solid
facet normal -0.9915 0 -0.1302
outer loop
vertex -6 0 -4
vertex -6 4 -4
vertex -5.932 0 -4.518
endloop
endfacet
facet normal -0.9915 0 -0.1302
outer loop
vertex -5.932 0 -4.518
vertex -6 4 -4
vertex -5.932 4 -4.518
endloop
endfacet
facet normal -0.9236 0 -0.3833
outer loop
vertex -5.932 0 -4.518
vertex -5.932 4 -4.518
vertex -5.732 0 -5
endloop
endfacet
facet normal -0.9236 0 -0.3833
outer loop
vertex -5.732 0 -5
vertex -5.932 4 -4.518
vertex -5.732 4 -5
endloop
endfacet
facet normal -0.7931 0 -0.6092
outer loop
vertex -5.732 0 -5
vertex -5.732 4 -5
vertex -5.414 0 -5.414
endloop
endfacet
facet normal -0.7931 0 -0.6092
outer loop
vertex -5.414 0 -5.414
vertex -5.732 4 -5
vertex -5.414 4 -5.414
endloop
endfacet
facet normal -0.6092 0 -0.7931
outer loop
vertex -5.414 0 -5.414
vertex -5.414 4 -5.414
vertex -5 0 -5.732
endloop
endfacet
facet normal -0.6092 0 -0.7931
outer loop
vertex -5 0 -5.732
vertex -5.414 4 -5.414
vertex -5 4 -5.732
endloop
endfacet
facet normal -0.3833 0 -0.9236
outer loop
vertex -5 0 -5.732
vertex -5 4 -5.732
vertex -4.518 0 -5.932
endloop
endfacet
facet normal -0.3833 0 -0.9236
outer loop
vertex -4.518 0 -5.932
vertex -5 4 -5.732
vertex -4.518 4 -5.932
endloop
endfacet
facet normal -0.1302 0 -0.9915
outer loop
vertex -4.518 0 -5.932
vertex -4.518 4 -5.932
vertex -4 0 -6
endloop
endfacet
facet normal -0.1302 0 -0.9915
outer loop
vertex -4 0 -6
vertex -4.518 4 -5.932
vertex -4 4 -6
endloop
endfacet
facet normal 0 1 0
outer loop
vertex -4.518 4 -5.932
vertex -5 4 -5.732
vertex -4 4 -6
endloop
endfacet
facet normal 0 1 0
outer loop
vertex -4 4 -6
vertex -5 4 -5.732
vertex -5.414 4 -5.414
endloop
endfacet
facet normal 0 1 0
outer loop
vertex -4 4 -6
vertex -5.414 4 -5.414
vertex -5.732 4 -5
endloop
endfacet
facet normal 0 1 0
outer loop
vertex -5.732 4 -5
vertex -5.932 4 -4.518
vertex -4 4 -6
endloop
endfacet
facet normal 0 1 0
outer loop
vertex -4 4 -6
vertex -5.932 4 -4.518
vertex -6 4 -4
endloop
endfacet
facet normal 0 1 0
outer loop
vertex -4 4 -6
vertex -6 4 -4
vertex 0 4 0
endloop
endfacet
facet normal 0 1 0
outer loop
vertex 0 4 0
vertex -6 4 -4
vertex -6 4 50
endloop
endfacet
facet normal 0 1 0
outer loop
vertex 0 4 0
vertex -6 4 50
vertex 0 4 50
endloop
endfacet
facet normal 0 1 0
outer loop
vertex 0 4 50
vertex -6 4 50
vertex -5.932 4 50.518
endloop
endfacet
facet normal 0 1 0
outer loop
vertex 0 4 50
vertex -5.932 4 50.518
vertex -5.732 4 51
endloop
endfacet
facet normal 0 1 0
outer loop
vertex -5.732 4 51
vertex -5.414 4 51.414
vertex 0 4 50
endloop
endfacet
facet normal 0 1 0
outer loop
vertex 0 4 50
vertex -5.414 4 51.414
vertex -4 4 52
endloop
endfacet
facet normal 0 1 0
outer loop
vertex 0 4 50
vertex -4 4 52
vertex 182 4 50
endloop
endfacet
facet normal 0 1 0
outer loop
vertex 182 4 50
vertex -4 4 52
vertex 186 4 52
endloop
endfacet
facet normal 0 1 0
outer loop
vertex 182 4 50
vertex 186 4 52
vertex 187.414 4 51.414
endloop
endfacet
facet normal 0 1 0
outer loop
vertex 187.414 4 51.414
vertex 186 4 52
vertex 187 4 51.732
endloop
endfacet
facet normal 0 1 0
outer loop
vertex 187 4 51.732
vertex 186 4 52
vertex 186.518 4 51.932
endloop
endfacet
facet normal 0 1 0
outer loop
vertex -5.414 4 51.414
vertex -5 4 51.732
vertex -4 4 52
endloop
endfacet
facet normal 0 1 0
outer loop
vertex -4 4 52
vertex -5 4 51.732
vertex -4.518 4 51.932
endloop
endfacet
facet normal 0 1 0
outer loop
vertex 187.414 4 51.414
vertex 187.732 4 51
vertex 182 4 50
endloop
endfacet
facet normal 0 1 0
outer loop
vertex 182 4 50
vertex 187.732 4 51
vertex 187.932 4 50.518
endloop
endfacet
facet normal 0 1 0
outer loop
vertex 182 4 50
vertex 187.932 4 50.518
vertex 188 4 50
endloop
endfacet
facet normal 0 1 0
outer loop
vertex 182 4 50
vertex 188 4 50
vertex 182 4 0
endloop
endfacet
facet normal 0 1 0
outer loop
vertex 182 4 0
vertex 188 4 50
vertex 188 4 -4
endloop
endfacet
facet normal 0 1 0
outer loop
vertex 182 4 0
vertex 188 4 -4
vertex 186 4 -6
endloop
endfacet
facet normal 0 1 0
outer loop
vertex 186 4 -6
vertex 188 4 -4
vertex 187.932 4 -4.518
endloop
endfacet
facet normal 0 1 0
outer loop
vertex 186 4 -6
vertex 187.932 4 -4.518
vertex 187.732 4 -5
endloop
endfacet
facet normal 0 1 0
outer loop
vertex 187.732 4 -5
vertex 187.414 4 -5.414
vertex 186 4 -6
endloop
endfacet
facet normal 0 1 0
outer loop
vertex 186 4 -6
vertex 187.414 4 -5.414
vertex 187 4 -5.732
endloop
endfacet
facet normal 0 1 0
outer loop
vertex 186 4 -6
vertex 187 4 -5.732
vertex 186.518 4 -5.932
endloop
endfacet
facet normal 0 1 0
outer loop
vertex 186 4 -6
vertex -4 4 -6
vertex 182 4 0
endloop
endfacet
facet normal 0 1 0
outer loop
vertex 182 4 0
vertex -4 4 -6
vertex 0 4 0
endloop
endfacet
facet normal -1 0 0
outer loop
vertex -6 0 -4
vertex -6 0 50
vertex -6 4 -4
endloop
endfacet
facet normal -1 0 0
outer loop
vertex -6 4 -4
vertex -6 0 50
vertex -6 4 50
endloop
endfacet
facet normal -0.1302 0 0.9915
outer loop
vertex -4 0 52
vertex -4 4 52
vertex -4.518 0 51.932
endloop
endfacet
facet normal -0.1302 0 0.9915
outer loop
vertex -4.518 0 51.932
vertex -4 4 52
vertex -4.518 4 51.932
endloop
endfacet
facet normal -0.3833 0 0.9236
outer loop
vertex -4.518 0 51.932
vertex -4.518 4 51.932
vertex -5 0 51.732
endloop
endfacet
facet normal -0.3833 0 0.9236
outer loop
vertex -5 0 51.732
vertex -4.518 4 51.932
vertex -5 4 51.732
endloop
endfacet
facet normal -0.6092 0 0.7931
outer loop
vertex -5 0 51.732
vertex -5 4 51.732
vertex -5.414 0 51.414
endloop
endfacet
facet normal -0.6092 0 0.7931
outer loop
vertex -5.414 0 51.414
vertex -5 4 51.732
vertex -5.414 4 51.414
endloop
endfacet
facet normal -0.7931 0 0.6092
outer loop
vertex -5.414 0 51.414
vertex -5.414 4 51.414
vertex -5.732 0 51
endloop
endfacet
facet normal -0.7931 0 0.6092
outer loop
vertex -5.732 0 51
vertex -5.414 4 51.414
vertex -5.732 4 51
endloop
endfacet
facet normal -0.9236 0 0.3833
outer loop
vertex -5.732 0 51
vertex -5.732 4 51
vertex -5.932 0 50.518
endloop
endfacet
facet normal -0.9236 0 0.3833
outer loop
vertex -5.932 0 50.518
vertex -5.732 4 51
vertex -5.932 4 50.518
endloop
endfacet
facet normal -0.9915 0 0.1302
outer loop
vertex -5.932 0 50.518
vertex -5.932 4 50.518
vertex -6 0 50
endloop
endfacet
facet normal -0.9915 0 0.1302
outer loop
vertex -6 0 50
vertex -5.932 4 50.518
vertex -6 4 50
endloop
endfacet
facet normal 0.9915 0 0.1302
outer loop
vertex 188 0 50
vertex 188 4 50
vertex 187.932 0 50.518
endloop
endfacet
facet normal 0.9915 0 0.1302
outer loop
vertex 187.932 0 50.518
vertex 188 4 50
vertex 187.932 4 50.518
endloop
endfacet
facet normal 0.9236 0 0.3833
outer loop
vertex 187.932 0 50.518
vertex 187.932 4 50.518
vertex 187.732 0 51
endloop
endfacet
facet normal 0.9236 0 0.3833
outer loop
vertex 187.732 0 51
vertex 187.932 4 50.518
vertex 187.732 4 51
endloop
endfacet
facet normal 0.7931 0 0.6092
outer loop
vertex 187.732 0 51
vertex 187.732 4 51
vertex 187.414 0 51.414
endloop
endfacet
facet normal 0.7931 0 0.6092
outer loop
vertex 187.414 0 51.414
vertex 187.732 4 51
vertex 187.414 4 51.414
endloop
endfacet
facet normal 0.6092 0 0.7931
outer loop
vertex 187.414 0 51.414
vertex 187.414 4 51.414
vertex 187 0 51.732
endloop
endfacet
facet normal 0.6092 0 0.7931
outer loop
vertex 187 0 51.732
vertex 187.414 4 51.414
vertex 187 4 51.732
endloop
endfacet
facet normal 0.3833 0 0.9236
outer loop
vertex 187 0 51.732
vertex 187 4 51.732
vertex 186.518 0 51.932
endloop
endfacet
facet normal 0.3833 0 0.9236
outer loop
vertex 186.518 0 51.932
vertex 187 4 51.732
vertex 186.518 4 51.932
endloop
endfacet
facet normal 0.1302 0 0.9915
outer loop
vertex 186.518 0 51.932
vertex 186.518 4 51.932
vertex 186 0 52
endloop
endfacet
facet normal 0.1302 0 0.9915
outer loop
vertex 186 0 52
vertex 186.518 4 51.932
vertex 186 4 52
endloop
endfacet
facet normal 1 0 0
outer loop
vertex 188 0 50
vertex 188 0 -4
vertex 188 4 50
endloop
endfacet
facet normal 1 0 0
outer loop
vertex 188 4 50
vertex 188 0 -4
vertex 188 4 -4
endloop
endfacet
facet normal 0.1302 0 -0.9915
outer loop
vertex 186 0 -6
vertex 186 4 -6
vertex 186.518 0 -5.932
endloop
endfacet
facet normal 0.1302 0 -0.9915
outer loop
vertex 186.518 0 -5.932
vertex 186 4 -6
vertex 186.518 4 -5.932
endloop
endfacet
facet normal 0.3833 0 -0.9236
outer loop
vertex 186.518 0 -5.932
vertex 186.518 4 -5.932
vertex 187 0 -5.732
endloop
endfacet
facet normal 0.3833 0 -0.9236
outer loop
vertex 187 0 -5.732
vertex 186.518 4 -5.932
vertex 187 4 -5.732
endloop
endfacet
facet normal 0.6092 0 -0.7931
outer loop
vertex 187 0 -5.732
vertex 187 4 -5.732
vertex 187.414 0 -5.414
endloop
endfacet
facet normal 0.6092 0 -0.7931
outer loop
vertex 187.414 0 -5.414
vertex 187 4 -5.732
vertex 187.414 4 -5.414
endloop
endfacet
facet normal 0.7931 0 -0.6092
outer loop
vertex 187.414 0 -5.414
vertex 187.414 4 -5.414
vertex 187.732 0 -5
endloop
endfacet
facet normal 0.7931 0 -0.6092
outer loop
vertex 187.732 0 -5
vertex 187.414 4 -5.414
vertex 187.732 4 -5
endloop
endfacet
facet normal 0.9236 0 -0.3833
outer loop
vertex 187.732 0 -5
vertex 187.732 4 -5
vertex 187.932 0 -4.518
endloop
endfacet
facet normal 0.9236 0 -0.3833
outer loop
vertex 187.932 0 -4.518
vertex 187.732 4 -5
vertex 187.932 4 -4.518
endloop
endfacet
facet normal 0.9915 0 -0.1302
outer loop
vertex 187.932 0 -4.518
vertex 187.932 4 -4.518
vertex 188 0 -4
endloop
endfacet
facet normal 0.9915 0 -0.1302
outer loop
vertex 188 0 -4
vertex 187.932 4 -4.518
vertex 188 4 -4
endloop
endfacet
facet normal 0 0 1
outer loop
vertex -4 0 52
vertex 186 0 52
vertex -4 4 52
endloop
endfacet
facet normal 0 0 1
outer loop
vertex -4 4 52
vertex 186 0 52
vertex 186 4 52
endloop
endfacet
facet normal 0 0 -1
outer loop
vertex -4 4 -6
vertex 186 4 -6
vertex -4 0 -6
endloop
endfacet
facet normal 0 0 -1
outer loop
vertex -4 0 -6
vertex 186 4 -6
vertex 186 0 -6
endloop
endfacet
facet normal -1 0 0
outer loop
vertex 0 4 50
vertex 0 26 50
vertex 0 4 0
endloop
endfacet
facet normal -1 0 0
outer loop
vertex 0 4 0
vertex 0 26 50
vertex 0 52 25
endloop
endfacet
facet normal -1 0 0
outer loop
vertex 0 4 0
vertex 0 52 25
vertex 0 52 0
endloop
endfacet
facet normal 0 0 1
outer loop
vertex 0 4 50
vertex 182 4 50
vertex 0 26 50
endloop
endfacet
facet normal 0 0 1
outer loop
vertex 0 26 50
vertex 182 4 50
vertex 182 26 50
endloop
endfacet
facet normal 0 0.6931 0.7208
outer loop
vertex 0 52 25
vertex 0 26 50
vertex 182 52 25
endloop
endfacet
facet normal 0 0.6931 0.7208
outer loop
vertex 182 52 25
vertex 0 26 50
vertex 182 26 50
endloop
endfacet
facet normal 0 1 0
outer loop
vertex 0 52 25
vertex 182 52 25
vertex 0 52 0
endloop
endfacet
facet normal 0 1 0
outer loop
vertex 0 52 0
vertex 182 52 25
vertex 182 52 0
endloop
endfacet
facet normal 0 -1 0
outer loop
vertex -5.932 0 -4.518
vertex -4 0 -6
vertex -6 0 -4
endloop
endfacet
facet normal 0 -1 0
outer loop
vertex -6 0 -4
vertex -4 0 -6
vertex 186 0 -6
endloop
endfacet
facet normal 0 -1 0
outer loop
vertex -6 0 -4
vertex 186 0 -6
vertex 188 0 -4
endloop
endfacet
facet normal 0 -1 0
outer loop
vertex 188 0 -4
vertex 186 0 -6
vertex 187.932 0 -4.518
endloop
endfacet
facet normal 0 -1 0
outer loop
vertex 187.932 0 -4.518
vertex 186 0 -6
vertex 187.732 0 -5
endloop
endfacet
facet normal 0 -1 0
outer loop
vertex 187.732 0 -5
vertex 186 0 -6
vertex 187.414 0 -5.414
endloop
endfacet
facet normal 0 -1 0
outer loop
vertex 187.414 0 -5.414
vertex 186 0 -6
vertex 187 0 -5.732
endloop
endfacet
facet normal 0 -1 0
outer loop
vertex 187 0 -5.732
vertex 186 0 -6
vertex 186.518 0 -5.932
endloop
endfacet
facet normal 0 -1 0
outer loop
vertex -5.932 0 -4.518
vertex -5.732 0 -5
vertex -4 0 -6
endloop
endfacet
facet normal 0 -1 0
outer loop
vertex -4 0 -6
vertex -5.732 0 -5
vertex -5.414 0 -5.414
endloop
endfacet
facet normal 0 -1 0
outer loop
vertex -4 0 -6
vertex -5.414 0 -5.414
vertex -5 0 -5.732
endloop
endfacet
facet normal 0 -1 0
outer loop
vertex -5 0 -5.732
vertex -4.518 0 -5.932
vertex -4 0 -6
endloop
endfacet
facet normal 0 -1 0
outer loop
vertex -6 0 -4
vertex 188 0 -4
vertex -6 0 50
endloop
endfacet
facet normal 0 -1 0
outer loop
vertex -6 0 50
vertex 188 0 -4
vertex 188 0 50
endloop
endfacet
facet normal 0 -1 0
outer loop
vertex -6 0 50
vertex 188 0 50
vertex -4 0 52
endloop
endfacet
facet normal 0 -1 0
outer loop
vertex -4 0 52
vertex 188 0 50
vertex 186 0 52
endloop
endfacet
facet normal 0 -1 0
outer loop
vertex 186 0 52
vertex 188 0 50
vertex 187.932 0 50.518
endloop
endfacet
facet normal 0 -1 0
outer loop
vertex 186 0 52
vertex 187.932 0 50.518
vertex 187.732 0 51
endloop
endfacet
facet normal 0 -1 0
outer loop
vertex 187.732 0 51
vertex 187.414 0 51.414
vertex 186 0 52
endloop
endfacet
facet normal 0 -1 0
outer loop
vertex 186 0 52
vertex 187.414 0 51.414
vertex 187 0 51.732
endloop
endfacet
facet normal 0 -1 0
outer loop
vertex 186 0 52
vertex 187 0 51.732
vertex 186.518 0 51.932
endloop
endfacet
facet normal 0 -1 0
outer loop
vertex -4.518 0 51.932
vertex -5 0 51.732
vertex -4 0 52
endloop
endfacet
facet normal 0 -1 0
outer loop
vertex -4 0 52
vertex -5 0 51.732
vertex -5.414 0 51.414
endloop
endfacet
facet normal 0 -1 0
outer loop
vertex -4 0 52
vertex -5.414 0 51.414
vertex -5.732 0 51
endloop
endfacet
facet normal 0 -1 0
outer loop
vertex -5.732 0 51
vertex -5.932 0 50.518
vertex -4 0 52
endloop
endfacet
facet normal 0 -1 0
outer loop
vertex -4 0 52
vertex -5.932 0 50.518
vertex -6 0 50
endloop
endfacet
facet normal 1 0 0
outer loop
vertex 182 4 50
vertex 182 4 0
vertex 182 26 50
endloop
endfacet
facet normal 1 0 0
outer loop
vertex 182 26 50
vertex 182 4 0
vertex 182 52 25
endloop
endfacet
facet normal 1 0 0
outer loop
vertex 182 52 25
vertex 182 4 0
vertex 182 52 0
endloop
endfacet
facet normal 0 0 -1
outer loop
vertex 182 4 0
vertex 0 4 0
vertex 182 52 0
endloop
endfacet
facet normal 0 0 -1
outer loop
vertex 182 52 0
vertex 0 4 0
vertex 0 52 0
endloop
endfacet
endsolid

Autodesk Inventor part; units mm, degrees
ref_plane "YZ Plane" through (0, 0, 0) normal (1, 0, 0) x (0, 1, 0)
ref_plane "XZ Plane" through (0, 0, 0) normal (0, 1, 0) x (-1, 0, 0)
ref_plane "XY Plane" through (0, 0, 0) normal (0, 0, 1) x (1, 0, 0)
sketch "Sketch1" plane through (0, 0, 0) normal (0, 0, 1) x (1, 0, 0)
  line L0 (0, 0) -> (182, 0)
  line L1 (182, 0) -> (182, 52)
  line L2 (182, 52) -> (0, 52)
  line L3 (0, 52) -> (0, 0)
  dimension "d0" = 182
  dimension "d1" = 52
extrude "Extrusion1" add sketch "Sketch1" along normal blind 50
sketch "Sketch2" plane through (182, 0, 0) normal (1, 0, 0) x (0, 0, -1)
  line L0 (0, 52) -> (-50, 52) projected
  line L1 (-25, 52) -> (-50, 26)
  line L2 (-50, 0) -> (-50, 52) projected
  line L3 (-25, 52) -> (-50, 52)
  line L4 (-50, 52) -> (-50, 26)
  point P0 (0, 0)
extrude "Extrusion2" cut sketch "Sketch2" against normal through all
sketch "Sketch3" plane through (0, 0, 0) normal (0, -1, 0) x (1, 0, 0)
  line L0 (0, 50) -> (182, 50) projected
  line L1 (182, 0) -> (0, 0)
  line L2 (0, 0) -> (0, 50)
  line L3 (0, 50) -> (182, 50)
  line L4 (182, 50) -> (182, 0)
  line L5 (-6, -6) -> (188, -6)
  line L6 (188, -6) -> (188, 52)
  line L7 (-6, 52) -> (-6, -6)
  line L8 (182, 50) -> (0, 50)
  line L9 (188, 52) -> (-6, 52)
  dimension "d6" = 6
extrude "Extrusion3" add sketch "Sketch3" against normal blind 4 contours L0 L4 L1 L2 | L7 L9 L6 L5
fillet "Fillet1" radius 2 4 edges at (188, 2, -6) (188, 2, 52) (-6, 2, 52) (-6, 2, -6)
properties part number "Early-944_Radio_Plug"
